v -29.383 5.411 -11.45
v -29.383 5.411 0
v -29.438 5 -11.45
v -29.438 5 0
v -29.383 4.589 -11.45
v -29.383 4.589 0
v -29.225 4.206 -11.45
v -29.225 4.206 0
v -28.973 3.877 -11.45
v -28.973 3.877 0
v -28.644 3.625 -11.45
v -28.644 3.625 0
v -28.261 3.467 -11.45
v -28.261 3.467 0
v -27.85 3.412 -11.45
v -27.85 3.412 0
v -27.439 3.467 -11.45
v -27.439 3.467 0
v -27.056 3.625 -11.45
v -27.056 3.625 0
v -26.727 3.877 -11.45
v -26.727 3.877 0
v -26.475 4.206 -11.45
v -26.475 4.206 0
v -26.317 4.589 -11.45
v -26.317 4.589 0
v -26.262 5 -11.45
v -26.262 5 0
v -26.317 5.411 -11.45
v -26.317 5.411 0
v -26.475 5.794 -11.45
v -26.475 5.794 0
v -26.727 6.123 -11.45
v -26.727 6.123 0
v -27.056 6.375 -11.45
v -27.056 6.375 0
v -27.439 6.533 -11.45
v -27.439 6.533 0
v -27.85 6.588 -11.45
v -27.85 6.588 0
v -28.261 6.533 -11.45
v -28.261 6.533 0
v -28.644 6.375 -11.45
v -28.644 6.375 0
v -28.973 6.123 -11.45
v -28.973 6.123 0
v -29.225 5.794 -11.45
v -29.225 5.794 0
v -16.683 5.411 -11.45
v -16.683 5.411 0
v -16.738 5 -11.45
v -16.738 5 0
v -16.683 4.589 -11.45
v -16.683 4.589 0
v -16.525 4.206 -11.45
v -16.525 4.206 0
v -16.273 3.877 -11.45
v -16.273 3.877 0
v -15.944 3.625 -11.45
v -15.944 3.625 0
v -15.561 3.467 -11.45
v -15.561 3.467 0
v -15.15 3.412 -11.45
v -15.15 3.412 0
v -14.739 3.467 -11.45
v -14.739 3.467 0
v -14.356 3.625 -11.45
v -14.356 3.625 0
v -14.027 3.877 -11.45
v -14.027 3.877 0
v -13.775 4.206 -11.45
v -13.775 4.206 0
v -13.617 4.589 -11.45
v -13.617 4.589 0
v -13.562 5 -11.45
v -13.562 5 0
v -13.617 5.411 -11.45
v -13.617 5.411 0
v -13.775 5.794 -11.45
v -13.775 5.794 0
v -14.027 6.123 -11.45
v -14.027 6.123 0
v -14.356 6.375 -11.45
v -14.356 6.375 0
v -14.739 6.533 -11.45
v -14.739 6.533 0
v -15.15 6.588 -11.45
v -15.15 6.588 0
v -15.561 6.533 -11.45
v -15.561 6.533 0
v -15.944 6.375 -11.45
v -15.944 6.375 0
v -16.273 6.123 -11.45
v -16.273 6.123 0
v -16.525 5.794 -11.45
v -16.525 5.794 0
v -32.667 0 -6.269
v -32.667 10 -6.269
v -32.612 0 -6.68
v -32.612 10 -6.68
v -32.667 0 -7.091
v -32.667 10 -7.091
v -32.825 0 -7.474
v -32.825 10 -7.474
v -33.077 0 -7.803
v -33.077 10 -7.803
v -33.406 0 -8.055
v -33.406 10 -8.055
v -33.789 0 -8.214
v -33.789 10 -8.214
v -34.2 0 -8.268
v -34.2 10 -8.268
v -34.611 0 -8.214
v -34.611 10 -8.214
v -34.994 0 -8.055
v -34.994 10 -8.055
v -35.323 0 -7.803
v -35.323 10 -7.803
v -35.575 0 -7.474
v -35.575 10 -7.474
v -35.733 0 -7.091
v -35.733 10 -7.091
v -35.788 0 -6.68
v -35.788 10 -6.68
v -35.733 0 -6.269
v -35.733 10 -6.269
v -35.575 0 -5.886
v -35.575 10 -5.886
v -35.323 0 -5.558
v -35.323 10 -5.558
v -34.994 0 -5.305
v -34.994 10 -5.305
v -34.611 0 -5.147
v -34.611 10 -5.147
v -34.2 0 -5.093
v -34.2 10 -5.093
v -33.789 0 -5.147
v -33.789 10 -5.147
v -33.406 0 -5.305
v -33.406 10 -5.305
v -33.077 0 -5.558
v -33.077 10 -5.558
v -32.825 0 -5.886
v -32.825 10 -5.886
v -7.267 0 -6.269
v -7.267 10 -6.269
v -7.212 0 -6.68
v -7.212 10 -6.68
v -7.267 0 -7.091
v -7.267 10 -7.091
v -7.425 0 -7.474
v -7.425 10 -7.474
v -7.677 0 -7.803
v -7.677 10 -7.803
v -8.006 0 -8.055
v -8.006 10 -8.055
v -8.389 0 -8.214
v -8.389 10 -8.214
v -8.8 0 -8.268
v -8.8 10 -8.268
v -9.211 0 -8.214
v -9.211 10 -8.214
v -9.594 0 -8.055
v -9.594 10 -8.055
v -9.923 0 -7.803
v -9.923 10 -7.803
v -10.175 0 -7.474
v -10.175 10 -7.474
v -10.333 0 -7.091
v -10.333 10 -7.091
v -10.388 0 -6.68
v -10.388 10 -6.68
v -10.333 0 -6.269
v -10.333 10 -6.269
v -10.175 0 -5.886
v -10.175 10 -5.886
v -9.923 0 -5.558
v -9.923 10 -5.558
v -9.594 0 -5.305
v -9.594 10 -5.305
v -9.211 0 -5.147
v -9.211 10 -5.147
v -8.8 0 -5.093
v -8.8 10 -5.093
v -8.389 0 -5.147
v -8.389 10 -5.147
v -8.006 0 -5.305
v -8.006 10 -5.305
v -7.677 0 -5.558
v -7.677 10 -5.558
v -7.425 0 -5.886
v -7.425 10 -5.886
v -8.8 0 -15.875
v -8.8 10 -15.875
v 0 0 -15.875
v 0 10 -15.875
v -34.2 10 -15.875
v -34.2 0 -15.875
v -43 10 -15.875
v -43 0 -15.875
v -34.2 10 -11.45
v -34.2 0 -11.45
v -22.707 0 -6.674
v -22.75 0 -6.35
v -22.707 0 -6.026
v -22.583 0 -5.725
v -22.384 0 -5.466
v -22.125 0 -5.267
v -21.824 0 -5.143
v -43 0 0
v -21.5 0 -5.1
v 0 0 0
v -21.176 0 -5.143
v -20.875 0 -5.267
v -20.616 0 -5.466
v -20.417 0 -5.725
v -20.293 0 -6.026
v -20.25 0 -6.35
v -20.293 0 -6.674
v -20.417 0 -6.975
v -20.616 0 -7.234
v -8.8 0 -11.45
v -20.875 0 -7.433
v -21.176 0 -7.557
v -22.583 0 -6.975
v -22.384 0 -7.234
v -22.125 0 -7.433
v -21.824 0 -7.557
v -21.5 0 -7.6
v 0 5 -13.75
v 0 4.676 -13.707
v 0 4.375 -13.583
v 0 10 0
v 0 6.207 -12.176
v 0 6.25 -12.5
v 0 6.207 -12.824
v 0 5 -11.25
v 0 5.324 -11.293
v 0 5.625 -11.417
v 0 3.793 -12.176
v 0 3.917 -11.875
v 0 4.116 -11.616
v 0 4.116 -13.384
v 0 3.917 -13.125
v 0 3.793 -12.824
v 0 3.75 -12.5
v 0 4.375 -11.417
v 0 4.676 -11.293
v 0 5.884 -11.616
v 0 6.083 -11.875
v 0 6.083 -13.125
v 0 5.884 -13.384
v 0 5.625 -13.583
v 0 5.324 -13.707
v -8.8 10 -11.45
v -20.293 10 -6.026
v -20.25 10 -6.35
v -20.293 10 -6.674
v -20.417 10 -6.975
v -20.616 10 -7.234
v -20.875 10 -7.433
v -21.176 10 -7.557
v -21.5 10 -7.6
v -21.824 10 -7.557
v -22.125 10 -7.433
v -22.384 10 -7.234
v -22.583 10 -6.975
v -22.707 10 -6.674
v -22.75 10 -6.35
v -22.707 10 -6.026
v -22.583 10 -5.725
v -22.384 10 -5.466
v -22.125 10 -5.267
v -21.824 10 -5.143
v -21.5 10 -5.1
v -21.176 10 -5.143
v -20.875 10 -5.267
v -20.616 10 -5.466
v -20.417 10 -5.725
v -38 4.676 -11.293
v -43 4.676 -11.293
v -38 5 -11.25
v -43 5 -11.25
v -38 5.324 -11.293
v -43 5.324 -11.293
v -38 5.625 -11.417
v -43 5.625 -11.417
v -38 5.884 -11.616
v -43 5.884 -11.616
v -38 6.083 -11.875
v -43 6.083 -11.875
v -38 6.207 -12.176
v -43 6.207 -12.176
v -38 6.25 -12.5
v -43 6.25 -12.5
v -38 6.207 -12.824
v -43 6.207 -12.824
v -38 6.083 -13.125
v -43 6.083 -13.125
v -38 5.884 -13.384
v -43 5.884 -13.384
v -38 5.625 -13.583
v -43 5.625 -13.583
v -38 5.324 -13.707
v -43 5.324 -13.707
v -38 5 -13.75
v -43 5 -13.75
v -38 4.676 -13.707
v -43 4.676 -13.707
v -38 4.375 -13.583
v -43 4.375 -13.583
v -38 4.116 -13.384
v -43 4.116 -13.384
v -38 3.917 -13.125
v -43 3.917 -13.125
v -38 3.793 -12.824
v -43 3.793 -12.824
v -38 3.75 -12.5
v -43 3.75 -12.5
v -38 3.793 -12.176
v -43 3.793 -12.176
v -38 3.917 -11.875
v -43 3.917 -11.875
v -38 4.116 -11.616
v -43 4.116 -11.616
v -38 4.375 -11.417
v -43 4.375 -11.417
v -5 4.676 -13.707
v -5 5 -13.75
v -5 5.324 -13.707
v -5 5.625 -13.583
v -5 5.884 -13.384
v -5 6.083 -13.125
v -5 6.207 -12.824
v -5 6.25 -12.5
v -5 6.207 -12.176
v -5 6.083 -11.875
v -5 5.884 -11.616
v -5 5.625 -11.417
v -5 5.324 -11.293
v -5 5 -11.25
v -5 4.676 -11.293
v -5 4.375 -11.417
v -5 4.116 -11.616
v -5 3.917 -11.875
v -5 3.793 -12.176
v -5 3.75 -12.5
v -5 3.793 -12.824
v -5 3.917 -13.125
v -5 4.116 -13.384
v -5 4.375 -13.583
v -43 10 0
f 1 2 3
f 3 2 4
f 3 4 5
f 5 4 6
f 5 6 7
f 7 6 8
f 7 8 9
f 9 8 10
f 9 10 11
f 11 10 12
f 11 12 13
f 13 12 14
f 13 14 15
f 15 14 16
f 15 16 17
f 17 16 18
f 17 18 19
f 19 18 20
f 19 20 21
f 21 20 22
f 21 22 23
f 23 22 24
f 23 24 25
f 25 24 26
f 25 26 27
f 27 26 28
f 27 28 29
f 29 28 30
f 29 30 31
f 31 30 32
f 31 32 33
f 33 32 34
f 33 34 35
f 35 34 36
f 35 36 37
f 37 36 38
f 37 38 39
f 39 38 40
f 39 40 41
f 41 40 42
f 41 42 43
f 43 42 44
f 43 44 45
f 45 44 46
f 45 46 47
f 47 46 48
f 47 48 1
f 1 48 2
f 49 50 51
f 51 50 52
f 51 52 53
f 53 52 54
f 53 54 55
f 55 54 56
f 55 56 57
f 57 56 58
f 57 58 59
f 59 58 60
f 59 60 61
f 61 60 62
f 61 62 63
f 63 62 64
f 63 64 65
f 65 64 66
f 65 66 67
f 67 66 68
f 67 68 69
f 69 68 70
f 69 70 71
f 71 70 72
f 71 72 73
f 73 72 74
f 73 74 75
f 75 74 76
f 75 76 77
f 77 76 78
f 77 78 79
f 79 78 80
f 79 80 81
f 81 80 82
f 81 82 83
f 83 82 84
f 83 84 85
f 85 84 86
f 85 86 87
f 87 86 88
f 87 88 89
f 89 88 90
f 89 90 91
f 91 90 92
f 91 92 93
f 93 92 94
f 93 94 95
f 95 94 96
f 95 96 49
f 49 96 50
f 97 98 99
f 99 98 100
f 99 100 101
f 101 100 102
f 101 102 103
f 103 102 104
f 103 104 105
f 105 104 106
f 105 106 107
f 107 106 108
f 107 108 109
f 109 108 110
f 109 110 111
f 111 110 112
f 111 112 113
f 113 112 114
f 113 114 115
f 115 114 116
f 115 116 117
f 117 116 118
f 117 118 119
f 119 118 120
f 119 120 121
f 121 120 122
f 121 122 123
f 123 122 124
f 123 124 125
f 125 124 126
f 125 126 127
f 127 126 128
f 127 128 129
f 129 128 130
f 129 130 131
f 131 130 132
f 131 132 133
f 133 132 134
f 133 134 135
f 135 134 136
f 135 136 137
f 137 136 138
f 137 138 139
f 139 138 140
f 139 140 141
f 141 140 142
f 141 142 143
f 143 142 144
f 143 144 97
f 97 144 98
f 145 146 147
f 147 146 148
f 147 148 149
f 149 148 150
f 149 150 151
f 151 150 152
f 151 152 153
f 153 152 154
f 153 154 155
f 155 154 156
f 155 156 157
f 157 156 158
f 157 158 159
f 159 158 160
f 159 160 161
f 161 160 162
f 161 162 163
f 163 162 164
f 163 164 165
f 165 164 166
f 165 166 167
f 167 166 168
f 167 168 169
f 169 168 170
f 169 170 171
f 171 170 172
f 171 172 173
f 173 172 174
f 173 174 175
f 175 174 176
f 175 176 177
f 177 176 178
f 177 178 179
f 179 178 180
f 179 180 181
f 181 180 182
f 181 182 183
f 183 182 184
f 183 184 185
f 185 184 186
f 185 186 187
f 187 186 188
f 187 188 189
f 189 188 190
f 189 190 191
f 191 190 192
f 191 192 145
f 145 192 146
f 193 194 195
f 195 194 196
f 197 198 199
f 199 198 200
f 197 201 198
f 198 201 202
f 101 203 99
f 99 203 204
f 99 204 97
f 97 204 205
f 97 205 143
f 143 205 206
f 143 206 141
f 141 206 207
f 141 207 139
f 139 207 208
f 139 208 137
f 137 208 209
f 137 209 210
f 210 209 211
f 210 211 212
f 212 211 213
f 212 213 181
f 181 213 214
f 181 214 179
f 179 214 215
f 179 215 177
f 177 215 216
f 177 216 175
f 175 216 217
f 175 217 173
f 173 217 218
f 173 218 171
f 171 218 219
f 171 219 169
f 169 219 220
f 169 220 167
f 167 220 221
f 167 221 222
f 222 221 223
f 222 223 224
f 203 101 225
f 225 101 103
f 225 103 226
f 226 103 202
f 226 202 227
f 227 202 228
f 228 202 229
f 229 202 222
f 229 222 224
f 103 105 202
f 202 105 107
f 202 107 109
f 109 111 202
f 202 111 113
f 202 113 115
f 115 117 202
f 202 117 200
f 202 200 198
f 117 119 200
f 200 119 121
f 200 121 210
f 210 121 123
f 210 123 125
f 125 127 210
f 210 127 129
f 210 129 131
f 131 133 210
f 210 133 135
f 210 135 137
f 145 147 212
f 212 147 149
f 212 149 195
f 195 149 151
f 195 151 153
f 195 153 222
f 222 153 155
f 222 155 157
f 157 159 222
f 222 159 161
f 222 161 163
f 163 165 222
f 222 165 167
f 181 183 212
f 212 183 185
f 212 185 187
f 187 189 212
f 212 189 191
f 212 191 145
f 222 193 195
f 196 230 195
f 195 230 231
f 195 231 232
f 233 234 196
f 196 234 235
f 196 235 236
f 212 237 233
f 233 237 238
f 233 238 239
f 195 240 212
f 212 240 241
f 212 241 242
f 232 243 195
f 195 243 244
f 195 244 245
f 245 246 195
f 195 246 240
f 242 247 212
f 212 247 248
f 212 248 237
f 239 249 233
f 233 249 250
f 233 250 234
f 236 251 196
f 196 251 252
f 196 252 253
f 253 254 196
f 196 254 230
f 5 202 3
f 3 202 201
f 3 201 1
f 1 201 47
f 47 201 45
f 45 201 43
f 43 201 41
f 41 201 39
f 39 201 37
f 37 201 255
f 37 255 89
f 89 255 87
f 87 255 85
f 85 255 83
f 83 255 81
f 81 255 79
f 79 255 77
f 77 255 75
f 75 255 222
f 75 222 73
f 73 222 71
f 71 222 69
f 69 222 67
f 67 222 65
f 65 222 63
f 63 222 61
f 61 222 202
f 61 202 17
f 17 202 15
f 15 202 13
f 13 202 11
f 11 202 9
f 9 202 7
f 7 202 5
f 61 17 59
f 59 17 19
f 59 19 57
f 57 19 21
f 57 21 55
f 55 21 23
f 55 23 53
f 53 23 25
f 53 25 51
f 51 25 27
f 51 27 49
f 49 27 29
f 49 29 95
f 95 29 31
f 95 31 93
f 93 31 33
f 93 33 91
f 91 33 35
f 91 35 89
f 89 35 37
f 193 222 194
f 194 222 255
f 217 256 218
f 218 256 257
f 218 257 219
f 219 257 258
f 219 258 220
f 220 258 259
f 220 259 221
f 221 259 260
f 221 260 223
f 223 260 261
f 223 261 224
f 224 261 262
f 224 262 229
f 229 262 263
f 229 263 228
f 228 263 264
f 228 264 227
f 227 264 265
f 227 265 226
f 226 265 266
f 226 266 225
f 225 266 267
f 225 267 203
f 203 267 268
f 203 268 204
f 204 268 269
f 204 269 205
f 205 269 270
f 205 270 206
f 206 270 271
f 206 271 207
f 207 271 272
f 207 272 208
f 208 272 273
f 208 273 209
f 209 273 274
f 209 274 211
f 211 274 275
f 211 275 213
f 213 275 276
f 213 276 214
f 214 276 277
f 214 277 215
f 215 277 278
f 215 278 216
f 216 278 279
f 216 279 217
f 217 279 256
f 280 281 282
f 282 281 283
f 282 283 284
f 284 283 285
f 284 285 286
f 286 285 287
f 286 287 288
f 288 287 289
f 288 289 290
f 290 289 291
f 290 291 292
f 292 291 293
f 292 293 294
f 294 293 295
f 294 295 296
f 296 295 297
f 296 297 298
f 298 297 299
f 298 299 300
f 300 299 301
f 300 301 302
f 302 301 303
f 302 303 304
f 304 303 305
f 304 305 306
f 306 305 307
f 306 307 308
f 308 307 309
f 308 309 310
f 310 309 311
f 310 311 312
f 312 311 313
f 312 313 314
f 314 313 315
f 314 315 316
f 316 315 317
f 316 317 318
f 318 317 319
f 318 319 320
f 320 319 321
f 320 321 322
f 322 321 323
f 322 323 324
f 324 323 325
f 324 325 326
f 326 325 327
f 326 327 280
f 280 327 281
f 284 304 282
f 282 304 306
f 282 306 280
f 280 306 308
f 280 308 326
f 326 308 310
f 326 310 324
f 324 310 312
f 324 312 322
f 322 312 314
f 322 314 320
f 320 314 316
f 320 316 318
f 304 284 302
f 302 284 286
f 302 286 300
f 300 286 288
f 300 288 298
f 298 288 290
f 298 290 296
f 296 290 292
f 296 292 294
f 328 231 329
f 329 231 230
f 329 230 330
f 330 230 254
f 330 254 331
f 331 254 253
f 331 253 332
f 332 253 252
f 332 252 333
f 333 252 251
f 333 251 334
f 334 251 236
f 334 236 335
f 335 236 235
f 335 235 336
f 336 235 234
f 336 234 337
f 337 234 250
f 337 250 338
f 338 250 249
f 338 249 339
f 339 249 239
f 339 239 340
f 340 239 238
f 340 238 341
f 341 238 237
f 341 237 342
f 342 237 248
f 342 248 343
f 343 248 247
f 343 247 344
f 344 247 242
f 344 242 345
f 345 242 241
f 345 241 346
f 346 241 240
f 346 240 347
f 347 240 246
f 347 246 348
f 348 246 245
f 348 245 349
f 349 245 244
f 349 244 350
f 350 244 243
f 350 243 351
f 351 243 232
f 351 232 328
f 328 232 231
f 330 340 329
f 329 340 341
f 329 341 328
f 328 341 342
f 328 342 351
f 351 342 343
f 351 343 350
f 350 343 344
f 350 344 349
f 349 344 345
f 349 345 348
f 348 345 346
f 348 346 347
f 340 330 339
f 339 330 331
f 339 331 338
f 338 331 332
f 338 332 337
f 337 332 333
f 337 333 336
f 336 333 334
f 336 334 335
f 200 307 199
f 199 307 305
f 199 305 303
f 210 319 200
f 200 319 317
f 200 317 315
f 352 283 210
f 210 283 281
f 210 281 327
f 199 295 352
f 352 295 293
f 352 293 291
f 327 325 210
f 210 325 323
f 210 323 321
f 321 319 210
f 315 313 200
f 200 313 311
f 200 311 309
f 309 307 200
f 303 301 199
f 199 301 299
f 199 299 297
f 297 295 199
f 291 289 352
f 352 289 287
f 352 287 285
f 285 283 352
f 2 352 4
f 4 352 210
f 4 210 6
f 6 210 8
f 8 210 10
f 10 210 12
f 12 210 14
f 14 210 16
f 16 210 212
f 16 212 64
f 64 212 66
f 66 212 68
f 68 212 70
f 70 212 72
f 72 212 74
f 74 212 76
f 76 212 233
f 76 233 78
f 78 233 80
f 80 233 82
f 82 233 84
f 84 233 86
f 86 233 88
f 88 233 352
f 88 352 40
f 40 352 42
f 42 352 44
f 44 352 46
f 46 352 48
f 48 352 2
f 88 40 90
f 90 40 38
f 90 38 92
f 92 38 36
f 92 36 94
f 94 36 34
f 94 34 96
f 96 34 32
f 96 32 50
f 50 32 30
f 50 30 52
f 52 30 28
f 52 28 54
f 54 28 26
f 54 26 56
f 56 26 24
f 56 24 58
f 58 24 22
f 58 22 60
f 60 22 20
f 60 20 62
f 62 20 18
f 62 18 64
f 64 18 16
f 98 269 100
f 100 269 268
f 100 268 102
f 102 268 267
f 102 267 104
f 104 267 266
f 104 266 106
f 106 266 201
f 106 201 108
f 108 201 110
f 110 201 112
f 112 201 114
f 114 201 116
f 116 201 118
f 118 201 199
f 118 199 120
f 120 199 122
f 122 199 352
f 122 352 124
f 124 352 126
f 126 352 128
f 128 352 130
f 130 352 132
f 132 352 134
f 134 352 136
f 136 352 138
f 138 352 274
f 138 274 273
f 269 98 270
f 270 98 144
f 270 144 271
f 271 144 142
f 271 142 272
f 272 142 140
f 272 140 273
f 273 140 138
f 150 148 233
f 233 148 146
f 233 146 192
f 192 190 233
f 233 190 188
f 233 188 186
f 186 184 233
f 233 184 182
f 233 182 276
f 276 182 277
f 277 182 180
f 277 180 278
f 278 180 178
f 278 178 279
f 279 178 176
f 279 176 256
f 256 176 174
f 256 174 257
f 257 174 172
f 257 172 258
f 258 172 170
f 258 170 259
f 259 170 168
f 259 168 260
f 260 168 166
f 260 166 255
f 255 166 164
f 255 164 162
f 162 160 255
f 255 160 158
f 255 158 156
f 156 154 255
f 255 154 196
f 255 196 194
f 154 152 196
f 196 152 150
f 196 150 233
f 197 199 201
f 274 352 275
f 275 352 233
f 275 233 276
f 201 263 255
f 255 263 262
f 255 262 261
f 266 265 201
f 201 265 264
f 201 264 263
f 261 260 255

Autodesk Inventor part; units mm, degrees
ref_plane "YZ Plane" through (0, 0, 0) normal (1, 0, 0) x (0, 1, 0)
ref_plane "XZ Plane" through (0, 0, 0) normal (0, 1, 0) x (-1, 0, 0)
ref_plane "XY Plane" through (0, 0, 0) normal (0, 0, 1) x (1, 0, 0)
sketch "Sketch1" plane through (0, 0, 0) normal (0, 1, 0) x (-1, 0, 0)
  line L0 (0, 0) -> (43, 0)
  line L1 (43, 0) -> (43, -61)
  line L2 (43, -61) -> (0, -61)
  line L3 (0, -61) -> (0, 0)
  dimension "d0" = 61
  dimension "d1" = 43
extrude "Extrusion1" add sketch "Sketch1" along normal blind 10
sketch "Sketch2" plane through (0, 0, 0) normal (1, 0, 0) x (0, 0, -1)
  line L0 (0, 0) -> (0, 10) projected
  line L1 (0, 5) -> (12.5, 5)
  circle A0 centre (12.5, 5) radius 1.25
  line L2 (0, 10) -> (61, 10) projected
  line L3 (30.5, 10) -> (30.5, 0)
  circle A1 centre (48.5, 5) radius 1.25
  dimension "d4" = 12.5
  dimension "d5" = 2.5
extrude "Extrusion2" cut sketch "Sketch2" against normal blind 5
sketch "Sketch3" plane through (-43, 0, -61) normal (-1, 0, 0) x (0, 0, 1)
  line L0 (61, 0) -> (0, 0) projected
  line L1 (61, 0) -> (61, 10) projected
  line L2 (0, 10) -> (61, 10) projected
  line L3 (0, 0) -> (0, 10) projected
  circle A0 centre (48.5, 5) radius 1.25 projected
  circle A1 centre (12.5, 5) radius 1.25 projected
extrude "Extrusion3" cut sketch "Sketch3" against normal blind 5 contours A0 | A1
sketch "Sketch4" plane through (0, 10, 0) normal (0, 1, 0) x (1, 0, 0)
  line L0 (-43, 0) -> (0, 0) projected
  line L1 (0, 61) -> (-43, 61) projected
  line L2 (-21.5, 0) -> (-21.5, 6.35)
  line L3 (-21.5, 61) -> (-21.5, 54.65)
  circle A0 centre (-21.5, 6.35) radius 1.25
  circle A1 centre (-21.5, 54.65) radius 1.25
  dimension "d10" = 6.35
  dimension "d11" = 6.35
  dimension "d12" = 2.5
  dimension "d13" = 2.5
extrude "Extrusion4" cut sketch "Sketch4" against normal up to surface (10 mm away)
sketch "Sketch5" plane through (0, 10, 0) normal (0, 1, 0) x (1, 0, 0)
  circle A0 centre (-21.5, 6.35) radius 1.25 projected
  circle A1 centre (-21.5, 54.65) radius 1.25 projected
  line L0 (-43, 0) -> (0, 0) projected
  line L1 (0, 0) -> (0, 61) projected
  line L2 (0, 61) -> (-43, 61) projected
  line L3 (-43, 61) -> (-43, 0) projected
  line L4 (-8.8, 11.45) -> (-34.2, 11.45)
  line L5 (-34.2, 11.45) -> (-34.2, 49.55)
  line L6 (-34.2, 49.55) -> (-8.8, 49.55)
  line L7 (-8.8, 49.55) -> (-8.8, 11.45)
  line L8 (-8.8, 11.45) -> (-34.2, 49.55) construction
  line L9 (-34.2, 11.45) -> (-8.8, 49.55) construction
  point P0 (-21.5, 30.5)
  dimension "d16" = 25.4
  dimension "d17" = 38.1
extrude "Extrusion5" cut sketch "Sketch5" against normal up to surface (10 mm away) contours L4 L5 L6 L7
sketch "Sketch6" plane through (0, 0, 0) normal (1, 0, 0) x (0, 0, -1)
  line L0 (0, 0) -> (0, 10) projected
  line L1 (61, 0) -> (0, 0) projected
  line L2 (0, 10) -> (15.875, 10)
  line L3 (15.875, 10) -> (15.875, 0)
  line L4 (15.875, 0) -> (0, 0)
  line L5 (0, 0) -> (0, 10)
  circle A0 centre (12.5, 5) radius 1.25 projected
  circle A1 centre (48.5, 5) radius 1.25 projected
  line L6 (61, 0) -> (0, 0) projected
  line L7 (61, 0) -> (61, 10) projected
  line L8 (0, 10) -> (61, 10) projected
  line L9 (0, 0) -> (0, 10) projected
  dimension "d20" = 15.875
extrude "Extrusion6" cut sketch "Sketch6" against normal up to surface (43 mm away) contours L3 L8 L7 L1 | A1
sketch "Sketch7" plane through (0, 10, 0) normal (0, 1, 0) x (1, 0, 0)
  line L0 (-34.2, 15.875) -> (-43, 15.875) projected
  line L1 (-43, 15.875) -> (-43, 0) projected
  line L2 (-43, 0) -> (0, 0) projected
  line L3 (0, 0) -> (0, 15.875) projected
  line L4 (0, 15.875) -> (-8.8, 15.875) projected
  line L5 (-8.8, 15.875) -> (-8.8, 11.45) projected
  line L6 (-8.8, 11.45) -> (-34.2, 11.45) projected
  line L7 (-34.2, 11.45) -> (-34.2, 15.875) projected
  circle A0 centre (-21.5, 6.35) radius 1.25 projected
  line L8 (-43, 0) -> (0, 0) projected
  line L9 (-21.5, 0) -> (-34.2, 0)
  line L10 (-34.2, 0) -> (-34.2, 6.6802)
  circle A1 centre (-34.2, 6.6802) radius 1.5875
  line L11 (-21.5, 0) -> (-21.5, 3.1877)
  circle A2 centre (-8.8, 6.6802) radius 1.5875
  dimension "d23" = 12.7
  dimension "d24" = 6.6802
  dimension "d25" = 3.175
extrude "Extrusion7" cut sketch "Sketch7" against normal blind 25.4 contours A1 | A2
sketch "Sketch8" plane through (0, 0, -15.875) normal (0, 0, -1) x (-1, 0, 0)
  line L0 (34.2, 0) -> (8.8, 0) projected
  line L1 (8.8, 10) -> (34.2, 10) projected
  line L2 (8.8, 10) -> (8.8, 0) projected
  line L3 (0, 0) -> (43, 0) projected
  line L4 (8.8, 10) -> (15.15, 10)
  line L5 (15.15, 10) -> (15.15, 0)
  line L6 (15.15, 0) -> (8.8, 0)
  line L7 (8.8, 0) -> (8.8, 10)
  circle A0 centre (15.15, 5) radius 1.5875
  line L8 (34.2, 10) -> (27.85, 10)
  line L9 (27.85, 10) -> (27.85, 0)
  line L10 (27.85, 0) -> (34.2, 0)
  line L11 (34.2, 0) -> (34.2, 10)
  circle A1 centre (27.85, 5) radius 1.5875
  line L12 (34.2, 10) -> (34.2, 0) projected
  line L13 (8.8, 10) -> (8.8, 0) projected
  dimension "d28" = 6.35
  dimension "d29" = 3.175
  dimension "d30" = 6.35
  dimension "d31" = 3.175
extrude "Extrusion8" cut sketch "Sketch8" against normal up to surface (15.875 mm away) contours A1 L9 | L9 A1 | A0 L5 | L5 A0
properties part number "exBase"
